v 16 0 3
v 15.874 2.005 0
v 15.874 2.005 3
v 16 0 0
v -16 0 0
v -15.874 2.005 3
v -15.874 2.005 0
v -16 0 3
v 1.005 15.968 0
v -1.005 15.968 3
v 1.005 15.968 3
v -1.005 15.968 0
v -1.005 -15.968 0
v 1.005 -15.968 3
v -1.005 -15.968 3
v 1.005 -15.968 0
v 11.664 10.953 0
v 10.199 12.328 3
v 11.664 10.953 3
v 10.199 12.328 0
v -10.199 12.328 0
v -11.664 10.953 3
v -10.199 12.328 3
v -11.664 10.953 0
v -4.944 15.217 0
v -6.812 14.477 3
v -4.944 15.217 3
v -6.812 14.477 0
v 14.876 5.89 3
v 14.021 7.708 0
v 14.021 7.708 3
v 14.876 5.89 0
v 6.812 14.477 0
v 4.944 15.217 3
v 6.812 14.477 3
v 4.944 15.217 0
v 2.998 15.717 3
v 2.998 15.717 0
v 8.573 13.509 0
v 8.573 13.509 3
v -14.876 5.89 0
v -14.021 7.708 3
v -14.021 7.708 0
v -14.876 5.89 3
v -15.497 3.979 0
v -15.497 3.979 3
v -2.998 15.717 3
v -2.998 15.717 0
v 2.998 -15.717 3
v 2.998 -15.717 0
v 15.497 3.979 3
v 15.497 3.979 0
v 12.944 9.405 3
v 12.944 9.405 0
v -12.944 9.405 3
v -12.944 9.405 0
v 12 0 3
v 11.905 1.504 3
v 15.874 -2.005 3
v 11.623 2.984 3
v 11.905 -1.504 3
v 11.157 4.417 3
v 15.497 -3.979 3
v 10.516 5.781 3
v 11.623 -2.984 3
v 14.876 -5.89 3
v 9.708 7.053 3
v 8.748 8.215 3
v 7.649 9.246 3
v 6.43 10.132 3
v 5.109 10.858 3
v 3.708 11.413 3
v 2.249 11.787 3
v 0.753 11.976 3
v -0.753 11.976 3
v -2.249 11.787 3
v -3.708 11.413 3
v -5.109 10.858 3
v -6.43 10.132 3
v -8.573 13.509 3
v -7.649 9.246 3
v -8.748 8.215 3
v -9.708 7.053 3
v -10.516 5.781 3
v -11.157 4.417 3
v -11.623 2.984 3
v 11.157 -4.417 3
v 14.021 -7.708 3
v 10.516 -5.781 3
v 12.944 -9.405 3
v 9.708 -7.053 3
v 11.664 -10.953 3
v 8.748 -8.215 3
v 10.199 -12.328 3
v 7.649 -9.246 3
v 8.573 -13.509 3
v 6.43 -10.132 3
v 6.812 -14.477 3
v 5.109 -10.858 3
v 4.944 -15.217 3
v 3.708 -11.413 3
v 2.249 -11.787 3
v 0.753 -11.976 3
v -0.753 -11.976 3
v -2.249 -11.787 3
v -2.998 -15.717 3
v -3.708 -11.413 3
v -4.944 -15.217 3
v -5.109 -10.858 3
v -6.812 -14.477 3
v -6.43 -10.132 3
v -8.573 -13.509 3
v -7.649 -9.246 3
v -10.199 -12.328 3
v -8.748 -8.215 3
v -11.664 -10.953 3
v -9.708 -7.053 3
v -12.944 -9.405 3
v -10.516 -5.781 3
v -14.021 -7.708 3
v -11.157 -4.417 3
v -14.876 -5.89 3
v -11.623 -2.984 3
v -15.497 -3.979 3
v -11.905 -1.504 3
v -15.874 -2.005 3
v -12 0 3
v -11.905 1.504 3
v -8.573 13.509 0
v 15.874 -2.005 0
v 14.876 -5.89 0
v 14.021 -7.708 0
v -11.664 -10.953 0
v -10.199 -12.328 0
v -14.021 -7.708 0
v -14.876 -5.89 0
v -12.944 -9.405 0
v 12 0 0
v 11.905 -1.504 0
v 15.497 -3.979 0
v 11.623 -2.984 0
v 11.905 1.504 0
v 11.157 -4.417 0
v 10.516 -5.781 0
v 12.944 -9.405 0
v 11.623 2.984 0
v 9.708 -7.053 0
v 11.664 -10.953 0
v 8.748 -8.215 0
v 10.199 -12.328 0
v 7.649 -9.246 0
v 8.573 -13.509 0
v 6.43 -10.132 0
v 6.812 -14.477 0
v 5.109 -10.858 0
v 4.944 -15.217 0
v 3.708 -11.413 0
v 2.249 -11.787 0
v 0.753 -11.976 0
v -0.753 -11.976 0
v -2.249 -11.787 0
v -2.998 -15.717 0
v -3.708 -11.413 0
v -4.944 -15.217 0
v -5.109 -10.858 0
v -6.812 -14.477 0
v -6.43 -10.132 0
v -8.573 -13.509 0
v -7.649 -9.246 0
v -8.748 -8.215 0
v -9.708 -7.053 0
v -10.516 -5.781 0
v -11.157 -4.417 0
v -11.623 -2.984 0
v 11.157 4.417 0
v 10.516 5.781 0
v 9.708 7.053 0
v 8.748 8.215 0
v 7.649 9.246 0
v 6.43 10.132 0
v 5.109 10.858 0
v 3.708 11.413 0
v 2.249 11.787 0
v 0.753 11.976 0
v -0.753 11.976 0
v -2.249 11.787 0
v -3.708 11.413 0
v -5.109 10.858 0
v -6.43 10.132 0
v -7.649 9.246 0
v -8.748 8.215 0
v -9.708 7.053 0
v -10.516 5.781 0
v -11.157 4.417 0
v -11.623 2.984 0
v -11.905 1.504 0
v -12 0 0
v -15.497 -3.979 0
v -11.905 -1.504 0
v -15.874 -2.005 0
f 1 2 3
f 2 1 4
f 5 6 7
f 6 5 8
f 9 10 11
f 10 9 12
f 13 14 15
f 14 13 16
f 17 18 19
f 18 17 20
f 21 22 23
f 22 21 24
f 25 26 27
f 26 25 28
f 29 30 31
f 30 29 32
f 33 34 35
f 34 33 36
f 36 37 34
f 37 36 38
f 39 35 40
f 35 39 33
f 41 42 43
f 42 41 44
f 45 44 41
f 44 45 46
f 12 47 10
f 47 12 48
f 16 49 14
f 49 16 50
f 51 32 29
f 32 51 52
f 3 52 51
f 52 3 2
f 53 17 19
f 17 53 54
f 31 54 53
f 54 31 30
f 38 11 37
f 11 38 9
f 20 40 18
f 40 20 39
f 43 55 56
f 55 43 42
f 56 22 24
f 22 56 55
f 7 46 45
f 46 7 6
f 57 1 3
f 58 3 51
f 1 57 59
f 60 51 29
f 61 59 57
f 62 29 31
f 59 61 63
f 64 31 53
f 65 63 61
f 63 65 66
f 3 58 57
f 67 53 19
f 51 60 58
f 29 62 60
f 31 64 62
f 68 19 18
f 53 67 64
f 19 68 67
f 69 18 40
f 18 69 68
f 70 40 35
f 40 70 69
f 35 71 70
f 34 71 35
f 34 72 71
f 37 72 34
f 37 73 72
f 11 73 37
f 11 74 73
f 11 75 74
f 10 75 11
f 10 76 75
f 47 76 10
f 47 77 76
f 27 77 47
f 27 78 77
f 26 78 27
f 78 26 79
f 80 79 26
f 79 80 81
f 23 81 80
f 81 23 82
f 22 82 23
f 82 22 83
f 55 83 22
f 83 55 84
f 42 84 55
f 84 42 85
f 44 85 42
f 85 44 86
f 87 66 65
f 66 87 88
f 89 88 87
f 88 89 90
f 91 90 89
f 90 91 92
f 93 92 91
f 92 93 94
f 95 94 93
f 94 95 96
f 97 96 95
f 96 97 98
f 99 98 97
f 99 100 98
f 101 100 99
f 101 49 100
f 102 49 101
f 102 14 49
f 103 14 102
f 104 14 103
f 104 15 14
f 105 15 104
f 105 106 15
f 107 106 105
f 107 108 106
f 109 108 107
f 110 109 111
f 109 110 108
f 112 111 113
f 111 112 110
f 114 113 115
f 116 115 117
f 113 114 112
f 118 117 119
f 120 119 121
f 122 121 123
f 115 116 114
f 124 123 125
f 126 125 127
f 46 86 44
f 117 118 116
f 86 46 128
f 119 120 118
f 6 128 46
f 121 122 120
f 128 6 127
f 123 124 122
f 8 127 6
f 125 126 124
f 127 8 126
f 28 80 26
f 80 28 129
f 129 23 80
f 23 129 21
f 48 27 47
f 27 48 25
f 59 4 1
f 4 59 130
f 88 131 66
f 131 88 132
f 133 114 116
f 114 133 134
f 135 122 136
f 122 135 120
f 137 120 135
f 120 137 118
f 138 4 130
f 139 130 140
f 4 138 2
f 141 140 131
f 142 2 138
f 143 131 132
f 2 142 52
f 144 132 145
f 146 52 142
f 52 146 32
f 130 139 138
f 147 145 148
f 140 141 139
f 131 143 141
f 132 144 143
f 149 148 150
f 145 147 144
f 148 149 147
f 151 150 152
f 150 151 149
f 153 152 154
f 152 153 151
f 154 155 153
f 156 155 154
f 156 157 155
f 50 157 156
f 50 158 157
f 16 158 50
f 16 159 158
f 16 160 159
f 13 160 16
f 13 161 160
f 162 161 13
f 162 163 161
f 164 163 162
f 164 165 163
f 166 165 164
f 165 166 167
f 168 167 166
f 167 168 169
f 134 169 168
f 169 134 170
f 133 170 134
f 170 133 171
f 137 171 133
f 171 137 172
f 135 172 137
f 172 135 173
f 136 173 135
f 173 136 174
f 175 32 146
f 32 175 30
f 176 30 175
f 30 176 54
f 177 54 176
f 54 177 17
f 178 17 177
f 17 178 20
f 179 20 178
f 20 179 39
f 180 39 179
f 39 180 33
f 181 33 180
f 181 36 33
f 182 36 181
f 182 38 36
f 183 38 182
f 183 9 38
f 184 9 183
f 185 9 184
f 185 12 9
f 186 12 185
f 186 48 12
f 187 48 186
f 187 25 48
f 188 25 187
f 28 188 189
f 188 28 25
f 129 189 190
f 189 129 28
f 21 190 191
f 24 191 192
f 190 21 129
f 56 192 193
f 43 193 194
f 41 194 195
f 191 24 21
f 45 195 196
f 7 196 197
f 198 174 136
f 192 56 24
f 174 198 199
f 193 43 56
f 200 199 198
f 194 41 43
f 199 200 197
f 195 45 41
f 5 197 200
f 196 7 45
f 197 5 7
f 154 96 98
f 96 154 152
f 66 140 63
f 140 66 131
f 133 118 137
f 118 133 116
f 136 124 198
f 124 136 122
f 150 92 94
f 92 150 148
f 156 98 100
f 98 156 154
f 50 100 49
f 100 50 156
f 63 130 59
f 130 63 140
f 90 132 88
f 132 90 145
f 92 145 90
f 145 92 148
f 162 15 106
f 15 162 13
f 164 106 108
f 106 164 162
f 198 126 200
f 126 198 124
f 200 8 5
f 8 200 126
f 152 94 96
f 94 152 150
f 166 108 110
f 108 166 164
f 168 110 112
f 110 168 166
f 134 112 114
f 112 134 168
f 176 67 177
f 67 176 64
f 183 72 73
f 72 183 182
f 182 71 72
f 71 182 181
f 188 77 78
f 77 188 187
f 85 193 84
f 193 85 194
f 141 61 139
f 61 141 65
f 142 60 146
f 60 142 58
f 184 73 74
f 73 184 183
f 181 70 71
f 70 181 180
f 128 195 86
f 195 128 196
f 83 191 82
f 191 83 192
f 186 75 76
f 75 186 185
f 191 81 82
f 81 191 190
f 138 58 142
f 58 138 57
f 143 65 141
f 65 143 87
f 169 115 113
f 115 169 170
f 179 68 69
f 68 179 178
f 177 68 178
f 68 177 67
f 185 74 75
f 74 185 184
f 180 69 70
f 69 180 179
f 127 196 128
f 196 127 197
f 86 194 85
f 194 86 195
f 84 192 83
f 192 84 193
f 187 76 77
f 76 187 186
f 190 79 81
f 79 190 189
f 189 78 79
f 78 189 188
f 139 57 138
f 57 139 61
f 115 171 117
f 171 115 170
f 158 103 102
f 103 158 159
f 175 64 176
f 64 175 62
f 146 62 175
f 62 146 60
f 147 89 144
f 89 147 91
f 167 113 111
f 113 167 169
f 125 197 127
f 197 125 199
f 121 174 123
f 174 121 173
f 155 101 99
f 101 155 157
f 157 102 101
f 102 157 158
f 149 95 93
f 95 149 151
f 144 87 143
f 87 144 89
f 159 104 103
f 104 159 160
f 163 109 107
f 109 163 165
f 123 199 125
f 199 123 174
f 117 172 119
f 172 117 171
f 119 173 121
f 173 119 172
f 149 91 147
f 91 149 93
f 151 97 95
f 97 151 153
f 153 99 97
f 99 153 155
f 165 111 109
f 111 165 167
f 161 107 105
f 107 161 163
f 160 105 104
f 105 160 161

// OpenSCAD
$fn=50;

difference(){
    cylinder(3,32/2,32/2);
    cylinder(3,24/2,24/2);
}
